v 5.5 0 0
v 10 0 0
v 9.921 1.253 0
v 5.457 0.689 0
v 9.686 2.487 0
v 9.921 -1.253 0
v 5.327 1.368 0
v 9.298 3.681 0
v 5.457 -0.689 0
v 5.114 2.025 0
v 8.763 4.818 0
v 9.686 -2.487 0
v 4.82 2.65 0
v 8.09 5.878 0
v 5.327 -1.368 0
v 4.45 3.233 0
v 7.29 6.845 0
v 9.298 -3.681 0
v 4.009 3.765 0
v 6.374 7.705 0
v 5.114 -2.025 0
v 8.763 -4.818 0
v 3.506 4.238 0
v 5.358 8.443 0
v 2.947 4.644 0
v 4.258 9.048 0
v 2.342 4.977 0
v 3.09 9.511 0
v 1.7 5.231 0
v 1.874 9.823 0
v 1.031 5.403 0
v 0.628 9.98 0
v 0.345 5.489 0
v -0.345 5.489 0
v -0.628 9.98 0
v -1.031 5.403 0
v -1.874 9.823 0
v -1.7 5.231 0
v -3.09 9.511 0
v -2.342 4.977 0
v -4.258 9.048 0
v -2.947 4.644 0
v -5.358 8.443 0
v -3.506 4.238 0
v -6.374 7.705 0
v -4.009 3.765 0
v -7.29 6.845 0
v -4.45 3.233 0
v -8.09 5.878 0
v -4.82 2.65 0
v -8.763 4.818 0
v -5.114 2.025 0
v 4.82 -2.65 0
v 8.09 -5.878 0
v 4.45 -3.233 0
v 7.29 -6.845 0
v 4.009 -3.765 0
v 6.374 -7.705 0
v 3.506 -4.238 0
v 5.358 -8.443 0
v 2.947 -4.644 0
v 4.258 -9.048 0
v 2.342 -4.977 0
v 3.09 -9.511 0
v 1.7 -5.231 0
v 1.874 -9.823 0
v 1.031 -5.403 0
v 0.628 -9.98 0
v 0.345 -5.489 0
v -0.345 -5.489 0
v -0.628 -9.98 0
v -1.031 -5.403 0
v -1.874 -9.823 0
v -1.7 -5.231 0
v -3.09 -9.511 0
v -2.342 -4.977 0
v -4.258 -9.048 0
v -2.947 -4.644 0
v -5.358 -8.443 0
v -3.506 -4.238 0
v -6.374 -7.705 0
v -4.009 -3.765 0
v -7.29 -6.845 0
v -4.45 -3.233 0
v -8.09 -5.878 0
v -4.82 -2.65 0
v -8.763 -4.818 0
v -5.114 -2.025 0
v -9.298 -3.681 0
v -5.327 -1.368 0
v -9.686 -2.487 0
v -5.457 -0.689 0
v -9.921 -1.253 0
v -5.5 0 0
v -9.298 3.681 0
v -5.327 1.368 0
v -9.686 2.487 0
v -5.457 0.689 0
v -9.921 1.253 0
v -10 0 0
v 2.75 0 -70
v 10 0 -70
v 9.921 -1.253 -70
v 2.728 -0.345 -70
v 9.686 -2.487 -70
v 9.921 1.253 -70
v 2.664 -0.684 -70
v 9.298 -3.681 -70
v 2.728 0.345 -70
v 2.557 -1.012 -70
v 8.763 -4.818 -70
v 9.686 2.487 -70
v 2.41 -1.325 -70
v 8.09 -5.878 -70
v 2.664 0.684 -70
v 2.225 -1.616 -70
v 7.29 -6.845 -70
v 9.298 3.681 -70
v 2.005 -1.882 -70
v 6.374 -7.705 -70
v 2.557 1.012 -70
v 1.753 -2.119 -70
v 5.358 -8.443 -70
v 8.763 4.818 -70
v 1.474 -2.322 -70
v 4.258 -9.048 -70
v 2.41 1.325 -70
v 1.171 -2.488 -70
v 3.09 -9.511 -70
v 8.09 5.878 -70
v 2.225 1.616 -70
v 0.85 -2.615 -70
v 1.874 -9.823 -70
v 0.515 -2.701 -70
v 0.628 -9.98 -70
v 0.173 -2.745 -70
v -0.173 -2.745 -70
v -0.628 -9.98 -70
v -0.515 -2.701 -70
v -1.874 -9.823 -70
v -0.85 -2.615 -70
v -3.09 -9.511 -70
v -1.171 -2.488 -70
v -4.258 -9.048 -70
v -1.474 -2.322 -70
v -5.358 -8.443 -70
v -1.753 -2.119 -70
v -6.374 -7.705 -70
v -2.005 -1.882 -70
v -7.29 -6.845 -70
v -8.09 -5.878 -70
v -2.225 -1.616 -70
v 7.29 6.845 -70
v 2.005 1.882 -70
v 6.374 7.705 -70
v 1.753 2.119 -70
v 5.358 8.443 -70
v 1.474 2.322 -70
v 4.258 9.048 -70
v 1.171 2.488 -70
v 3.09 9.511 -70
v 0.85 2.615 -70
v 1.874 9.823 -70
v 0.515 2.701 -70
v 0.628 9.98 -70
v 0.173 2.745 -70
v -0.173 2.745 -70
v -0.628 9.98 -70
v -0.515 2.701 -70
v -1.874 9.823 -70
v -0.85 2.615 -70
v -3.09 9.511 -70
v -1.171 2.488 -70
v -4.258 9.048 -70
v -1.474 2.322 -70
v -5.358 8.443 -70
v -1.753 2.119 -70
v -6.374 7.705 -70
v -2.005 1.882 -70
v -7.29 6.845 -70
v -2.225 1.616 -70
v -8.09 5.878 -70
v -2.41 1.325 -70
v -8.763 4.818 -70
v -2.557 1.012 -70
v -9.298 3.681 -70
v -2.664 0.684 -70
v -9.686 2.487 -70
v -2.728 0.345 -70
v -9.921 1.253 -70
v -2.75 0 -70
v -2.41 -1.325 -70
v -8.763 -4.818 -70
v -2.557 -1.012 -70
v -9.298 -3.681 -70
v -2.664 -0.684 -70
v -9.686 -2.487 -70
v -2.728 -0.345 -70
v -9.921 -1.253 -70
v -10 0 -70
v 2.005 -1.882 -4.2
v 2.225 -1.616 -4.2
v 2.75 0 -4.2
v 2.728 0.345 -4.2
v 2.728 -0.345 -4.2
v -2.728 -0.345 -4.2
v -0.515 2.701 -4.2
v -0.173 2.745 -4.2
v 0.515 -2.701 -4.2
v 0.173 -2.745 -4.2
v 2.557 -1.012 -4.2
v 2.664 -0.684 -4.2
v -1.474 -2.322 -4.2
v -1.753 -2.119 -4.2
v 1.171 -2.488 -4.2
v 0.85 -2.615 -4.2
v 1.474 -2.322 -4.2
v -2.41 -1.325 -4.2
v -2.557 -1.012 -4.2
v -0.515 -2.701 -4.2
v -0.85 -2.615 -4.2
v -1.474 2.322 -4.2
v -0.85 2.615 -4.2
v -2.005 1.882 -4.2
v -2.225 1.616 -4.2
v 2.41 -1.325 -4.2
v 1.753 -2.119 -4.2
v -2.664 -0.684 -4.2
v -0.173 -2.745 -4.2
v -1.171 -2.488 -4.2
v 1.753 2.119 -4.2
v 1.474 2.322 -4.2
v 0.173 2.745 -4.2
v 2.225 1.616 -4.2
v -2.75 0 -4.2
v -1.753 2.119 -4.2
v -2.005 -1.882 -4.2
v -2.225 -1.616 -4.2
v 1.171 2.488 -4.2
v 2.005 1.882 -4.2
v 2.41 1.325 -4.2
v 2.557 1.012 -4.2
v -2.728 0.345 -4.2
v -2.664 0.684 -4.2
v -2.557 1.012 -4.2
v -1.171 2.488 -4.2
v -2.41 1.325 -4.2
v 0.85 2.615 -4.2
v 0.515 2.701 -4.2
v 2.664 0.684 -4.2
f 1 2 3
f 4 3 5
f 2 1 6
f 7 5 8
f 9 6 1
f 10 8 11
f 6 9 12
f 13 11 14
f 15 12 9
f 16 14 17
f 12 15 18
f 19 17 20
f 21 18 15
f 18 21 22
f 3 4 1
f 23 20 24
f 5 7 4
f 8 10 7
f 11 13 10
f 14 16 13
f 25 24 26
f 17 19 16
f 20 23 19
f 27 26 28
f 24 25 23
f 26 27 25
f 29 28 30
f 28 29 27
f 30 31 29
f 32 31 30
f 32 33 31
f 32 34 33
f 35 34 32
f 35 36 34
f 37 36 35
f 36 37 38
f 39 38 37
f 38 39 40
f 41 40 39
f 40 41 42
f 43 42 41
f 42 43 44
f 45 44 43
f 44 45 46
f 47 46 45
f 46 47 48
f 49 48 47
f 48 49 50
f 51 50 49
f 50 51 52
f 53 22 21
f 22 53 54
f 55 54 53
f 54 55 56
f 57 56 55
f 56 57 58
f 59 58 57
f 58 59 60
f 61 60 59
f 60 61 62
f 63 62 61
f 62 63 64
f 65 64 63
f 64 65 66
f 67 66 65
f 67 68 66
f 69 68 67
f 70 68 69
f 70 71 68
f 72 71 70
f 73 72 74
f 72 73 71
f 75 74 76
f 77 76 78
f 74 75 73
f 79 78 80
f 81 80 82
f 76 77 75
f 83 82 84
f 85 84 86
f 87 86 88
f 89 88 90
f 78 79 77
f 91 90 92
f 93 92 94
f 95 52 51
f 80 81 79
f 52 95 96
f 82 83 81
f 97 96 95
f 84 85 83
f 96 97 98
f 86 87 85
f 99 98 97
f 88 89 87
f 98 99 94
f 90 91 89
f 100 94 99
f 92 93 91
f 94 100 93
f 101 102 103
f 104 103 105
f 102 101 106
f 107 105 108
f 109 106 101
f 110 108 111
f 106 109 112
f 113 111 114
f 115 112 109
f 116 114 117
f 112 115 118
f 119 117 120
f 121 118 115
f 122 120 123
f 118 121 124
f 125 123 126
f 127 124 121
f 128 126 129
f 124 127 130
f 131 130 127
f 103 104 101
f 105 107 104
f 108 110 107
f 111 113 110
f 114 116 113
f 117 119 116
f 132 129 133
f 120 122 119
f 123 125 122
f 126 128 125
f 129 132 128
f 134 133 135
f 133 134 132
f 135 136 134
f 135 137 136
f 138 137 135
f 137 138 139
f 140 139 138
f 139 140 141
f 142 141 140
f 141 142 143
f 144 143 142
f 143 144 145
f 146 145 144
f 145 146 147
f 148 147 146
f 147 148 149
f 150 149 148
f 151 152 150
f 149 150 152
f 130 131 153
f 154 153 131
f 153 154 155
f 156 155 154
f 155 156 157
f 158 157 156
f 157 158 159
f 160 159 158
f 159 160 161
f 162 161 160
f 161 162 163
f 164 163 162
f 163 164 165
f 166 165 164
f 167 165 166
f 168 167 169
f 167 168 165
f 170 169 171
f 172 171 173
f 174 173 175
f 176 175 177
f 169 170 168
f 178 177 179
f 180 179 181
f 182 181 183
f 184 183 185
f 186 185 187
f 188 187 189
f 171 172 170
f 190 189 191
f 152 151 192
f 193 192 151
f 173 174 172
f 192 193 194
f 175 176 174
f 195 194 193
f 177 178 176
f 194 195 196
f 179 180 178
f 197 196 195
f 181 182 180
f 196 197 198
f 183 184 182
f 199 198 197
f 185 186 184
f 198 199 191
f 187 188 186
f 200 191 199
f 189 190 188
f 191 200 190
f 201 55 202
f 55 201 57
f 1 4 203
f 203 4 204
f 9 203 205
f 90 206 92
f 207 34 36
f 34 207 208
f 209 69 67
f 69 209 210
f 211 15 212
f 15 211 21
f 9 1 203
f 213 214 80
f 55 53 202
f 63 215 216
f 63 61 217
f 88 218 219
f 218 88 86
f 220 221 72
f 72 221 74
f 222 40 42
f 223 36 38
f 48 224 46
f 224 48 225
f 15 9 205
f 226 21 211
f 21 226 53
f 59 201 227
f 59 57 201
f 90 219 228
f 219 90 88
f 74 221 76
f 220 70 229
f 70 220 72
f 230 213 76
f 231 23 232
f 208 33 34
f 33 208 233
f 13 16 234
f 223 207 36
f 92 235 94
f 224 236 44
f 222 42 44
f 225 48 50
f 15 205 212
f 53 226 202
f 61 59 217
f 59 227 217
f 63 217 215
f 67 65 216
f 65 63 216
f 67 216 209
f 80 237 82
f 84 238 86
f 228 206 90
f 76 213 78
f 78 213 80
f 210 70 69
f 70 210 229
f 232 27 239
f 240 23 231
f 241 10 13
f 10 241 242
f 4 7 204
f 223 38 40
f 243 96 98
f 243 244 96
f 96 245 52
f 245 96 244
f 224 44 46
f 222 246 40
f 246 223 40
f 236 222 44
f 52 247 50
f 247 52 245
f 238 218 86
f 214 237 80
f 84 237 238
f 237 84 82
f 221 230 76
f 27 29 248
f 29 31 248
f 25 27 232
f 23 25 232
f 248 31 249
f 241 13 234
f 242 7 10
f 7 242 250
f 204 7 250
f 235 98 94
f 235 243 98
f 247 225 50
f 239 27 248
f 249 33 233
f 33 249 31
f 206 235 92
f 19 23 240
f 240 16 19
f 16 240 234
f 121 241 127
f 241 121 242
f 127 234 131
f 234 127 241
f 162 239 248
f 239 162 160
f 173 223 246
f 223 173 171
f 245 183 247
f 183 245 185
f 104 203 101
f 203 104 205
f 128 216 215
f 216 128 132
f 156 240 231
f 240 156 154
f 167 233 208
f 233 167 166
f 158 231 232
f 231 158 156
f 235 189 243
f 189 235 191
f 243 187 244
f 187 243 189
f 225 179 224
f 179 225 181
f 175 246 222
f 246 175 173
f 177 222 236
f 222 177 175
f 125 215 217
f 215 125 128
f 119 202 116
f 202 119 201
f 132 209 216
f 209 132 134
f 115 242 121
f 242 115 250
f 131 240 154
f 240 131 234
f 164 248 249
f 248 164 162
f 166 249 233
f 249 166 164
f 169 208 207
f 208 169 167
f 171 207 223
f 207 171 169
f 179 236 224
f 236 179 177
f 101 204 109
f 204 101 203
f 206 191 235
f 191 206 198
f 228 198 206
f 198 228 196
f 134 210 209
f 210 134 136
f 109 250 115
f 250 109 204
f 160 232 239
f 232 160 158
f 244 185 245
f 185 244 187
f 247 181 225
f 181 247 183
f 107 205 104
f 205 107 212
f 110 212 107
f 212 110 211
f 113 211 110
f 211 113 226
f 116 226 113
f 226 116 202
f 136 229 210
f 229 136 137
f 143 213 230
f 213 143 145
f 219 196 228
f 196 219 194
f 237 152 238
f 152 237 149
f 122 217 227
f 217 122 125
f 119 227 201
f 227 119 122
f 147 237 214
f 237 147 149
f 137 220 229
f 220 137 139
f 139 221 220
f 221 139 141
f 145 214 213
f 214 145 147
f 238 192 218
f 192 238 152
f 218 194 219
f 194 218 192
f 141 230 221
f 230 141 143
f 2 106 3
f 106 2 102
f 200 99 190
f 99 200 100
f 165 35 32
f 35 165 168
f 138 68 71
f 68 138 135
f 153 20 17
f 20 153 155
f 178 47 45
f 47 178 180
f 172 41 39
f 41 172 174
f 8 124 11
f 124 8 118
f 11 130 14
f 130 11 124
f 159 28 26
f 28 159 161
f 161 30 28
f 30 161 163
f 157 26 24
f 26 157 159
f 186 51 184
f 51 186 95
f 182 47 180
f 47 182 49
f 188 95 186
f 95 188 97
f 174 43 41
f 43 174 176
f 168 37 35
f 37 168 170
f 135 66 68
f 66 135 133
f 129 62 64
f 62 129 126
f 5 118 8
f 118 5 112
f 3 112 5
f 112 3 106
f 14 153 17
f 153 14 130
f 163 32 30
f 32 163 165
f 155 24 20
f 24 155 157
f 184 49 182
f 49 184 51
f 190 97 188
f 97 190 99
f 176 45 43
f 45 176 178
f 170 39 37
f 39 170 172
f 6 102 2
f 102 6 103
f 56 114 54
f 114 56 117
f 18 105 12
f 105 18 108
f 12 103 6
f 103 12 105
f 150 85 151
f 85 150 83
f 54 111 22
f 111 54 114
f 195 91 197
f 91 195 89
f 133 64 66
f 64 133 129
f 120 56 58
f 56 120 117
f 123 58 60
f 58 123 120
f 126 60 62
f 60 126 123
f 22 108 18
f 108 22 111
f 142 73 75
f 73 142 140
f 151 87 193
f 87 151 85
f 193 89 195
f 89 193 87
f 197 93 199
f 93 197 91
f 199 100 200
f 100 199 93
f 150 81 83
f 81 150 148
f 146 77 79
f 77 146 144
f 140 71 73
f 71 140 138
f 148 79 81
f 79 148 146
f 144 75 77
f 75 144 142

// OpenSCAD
$fn = 50;


difference() {
	union() {
		translate(v = [0, 0, -70.0000000000]) {
			cylinder(h = 70, r = 10.0000000000);
		}
		cylinder(h = 0, r = 20.0000000000);
	}
	union() {
		translate(v = [0, 0, 0]) {
			rotate(a = [0, 0, 0]) {
				difference() {
					union() {
						#translate(v = [0, 0, -70.0000000000]) {
							cylinder(h = 70, r = 2.2500000000);
						}
						#translate(v = [0, 0, -4.2000000000]) {
							cylinder(h = 4.2000000000, r1 = 2.7500000000, r2 = 5.5000000000);
						}
						#translate(v = [0, 0, -70.0000000000]) {
							cylinder(h = 70, r = 2.7500000000);
						}
						#translate(v = [0, 0, -70.0000000000]) {
							cylinder(h = 70, r = 2.2500000000);
						}
					}
					union();
				}
			}
		}
	}
}
